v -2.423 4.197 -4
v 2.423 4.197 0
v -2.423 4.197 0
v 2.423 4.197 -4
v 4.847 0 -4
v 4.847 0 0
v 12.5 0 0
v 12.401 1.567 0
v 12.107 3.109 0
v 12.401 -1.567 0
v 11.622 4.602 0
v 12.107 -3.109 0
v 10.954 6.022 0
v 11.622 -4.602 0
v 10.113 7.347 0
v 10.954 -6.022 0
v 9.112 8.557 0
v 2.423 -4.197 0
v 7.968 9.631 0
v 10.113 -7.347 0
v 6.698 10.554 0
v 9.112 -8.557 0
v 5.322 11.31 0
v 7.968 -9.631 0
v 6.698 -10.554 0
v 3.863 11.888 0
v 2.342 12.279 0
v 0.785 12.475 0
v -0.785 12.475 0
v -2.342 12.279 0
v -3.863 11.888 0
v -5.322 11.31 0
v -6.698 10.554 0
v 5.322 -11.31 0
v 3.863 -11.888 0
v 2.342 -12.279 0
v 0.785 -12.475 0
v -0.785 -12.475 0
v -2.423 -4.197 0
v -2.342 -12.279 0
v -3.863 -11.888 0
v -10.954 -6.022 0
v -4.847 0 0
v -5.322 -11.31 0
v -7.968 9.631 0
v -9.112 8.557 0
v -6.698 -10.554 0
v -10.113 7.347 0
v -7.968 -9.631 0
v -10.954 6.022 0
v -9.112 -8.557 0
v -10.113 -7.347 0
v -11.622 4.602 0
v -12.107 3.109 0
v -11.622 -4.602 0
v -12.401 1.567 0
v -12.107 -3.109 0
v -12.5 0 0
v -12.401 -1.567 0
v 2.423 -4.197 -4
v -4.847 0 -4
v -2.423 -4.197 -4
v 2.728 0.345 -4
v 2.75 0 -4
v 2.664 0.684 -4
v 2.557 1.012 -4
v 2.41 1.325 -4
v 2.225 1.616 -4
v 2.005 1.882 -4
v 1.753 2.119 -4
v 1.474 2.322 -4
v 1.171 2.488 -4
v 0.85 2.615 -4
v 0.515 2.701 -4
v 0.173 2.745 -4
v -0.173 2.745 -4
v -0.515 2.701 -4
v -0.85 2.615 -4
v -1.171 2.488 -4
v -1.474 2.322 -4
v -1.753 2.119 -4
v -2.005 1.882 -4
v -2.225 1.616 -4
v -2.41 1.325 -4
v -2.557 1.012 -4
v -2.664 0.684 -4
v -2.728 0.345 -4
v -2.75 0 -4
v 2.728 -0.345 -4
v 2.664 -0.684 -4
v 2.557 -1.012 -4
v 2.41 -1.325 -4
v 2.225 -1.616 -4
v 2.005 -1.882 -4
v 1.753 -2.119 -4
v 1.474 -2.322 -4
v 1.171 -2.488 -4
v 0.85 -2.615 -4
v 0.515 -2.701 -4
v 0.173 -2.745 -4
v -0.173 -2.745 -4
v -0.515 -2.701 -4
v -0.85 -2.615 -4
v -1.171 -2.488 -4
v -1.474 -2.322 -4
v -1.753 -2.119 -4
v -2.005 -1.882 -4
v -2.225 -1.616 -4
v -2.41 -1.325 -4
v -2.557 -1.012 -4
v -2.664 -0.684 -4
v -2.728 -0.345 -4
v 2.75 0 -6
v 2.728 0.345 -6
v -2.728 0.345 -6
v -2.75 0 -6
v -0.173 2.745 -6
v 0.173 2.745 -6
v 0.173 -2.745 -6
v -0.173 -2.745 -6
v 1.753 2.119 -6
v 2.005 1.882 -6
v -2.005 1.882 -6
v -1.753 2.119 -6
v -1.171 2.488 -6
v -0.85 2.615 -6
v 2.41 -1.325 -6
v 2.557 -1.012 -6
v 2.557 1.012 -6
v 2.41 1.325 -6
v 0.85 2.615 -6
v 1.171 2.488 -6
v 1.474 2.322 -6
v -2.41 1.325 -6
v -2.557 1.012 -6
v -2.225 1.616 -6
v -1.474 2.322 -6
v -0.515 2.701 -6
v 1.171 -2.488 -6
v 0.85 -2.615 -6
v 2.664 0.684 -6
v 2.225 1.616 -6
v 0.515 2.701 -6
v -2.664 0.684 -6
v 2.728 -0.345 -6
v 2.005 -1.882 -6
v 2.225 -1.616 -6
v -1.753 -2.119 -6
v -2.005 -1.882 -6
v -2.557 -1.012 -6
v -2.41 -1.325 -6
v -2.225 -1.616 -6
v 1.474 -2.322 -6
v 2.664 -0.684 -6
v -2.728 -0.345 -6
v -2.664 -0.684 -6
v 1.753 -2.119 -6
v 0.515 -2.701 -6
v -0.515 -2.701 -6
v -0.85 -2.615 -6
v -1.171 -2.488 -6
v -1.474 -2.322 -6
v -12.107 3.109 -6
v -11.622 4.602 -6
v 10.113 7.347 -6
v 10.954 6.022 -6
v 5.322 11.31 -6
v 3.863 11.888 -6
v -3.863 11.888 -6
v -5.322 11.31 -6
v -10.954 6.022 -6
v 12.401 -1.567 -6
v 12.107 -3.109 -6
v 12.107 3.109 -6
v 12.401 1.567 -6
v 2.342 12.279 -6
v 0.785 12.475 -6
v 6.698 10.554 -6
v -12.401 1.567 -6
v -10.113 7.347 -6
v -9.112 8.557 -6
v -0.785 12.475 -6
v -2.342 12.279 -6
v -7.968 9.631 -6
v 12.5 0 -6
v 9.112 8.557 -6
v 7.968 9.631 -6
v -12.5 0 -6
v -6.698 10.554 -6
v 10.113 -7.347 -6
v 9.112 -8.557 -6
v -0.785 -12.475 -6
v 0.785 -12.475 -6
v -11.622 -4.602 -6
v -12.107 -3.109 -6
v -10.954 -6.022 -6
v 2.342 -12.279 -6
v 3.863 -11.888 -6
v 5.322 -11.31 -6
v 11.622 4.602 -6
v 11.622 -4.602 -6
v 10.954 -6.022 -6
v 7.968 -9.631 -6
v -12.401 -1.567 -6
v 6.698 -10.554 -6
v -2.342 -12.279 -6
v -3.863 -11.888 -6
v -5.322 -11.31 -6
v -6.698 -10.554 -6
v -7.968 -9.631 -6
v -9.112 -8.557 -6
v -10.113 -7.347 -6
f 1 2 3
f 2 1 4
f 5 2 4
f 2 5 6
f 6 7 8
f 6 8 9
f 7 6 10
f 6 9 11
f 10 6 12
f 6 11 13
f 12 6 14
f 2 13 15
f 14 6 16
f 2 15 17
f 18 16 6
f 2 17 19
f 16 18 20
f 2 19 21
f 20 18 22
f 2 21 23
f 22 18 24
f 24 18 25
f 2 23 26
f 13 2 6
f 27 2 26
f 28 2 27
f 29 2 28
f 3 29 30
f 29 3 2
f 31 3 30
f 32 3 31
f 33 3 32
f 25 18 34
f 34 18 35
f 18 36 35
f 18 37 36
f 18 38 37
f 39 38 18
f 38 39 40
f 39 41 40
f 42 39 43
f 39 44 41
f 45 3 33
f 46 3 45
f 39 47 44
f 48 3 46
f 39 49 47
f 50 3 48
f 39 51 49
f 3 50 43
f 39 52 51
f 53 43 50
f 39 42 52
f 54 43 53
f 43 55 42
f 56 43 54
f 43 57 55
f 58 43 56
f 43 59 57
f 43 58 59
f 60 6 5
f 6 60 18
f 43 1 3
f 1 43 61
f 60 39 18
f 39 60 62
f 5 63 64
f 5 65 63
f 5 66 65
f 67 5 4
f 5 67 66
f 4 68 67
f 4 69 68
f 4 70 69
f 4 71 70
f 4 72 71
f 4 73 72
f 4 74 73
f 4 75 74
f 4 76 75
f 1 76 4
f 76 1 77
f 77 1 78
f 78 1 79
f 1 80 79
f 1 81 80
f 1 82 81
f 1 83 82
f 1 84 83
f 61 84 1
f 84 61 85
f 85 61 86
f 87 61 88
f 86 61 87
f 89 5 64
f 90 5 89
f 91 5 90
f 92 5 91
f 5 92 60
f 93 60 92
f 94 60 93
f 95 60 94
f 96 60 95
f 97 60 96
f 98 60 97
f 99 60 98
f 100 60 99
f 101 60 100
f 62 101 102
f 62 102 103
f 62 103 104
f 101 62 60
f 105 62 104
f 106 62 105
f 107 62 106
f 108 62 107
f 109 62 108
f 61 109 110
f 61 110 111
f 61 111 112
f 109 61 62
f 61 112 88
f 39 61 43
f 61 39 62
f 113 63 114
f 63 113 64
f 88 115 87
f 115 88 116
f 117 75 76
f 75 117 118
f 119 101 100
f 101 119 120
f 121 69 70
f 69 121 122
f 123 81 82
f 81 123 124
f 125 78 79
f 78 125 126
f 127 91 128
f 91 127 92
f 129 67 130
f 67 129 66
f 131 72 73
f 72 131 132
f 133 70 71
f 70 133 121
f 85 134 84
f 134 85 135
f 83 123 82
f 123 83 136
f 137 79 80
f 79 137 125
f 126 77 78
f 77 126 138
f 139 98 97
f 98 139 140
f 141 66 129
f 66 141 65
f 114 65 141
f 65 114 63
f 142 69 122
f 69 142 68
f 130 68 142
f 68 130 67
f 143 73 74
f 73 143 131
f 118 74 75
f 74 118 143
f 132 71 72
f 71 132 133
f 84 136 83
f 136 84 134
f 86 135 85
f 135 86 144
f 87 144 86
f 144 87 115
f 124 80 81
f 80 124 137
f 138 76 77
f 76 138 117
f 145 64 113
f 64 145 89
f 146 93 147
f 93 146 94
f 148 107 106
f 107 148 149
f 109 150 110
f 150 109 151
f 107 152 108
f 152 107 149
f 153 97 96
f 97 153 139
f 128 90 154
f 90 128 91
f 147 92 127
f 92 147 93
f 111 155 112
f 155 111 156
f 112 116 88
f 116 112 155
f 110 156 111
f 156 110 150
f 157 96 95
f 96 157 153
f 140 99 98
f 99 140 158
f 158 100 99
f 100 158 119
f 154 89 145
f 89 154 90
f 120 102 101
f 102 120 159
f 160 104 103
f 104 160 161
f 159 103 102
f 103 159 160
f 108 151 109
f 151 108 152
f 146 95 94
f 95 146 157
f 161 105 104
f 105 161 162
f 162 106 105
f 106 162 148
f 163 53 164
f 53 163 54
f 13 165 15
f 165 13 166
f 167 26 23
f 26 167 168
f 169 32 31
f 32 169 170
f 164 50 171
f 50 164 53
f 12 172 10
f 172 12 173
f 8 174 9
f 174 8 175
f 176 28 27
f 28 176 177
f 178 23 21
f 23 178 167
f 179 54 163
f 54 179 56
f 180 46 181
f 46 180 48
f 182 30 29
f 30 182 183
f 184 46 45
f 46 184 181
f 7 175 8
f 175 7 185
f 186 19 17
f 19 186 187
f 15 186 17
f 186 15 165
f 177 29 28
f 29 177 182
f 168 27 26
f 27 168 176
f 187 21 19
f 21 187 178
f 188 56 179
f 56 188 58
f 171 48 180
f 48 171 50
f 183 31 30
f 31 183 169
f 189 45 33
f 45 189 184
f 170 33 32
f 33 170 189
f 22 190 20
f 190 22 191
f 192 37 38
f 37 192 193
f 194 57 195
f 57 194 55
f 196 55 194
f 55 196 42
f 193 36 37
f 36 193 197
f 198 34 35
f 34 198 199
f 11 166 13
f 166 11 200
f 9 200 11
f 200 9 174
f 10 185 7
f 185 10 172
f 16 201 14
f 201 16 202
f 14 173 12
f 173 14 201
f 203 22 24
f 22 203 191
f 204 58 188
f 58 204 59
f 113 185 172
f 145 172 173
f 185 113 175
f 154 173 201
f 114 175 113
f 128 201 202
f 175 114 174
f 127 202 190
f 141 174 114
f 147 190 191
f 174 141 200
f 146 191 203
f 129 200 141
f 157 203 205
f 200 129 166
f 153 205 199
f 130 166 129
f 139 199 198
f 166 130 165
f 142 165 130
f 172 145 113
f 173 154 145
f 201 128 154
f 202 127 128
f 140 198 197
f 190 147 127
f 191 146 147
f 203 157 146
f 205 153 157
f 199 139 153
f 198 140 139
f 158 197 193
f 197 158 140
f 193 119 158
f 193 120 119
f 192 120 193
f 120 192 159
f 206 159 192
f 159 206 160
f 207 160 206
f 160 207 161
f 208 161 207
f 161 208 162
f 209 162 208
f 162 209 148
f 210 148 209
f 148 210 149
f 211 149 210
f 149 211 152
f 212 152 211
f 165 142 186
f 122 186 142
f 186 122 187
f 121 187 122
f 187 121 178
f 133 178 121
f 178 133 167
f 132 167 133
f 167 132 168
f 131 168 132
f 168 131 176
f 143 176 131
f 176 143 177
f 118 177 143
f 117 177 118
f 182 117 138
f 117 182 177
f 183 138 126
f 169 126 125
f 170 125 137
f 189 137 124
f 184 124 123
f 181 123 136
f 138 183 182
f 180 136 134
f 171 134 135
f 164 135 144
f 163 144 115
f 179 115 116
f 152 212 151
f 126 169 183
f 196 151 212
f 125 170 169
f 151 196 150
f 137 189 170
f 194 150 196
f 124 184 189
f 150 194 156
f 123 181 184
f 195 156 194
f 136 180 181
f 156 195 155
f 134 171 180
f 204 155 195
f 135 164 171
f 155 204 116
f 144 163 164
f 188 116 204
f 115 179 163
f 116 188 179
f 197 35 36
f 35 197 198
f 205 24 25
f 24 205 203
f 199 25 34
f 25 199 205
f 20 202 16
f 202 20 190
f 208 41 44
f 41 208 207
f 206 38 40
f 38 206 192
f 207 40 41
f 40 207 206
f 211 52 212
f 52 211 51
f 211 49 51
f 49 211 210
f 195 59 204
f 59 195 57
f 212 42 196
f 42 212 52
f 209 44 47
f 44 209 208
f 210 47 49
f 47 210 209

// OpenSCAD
$fn = 50;


difference() {
	union() {
		translate(v = [0, 0, -6.0000000000]) {
			cylinder(h = 6.0000000000, r = 12.5000000000);
		}
	}
	union() {
		translate(v = [0, 0, 0]) {
			rotate(a = [0, 0, 0]) {
				difference() {
					union() {
						translate(v = [0, 0, -4]) {
							linear_extrude(height = 4) {
								polygon(points = [[4.8468000000, 0.0000000000], [2.4234000000, 4.1974519271], [-2.4234000000, 4.1974519271], [-4.8468000000, 0.0000000000], [-2.4234000000, -4.1974519271], [2.4234000000, -4.1974519271]]);
							}
						}
					}
					union();
				}
			}
		}
		#translate(v = [0, 0, -100.0000000000]) {
			cylinder(h = 200, r = 2.7500000000);
		}
	}
}
